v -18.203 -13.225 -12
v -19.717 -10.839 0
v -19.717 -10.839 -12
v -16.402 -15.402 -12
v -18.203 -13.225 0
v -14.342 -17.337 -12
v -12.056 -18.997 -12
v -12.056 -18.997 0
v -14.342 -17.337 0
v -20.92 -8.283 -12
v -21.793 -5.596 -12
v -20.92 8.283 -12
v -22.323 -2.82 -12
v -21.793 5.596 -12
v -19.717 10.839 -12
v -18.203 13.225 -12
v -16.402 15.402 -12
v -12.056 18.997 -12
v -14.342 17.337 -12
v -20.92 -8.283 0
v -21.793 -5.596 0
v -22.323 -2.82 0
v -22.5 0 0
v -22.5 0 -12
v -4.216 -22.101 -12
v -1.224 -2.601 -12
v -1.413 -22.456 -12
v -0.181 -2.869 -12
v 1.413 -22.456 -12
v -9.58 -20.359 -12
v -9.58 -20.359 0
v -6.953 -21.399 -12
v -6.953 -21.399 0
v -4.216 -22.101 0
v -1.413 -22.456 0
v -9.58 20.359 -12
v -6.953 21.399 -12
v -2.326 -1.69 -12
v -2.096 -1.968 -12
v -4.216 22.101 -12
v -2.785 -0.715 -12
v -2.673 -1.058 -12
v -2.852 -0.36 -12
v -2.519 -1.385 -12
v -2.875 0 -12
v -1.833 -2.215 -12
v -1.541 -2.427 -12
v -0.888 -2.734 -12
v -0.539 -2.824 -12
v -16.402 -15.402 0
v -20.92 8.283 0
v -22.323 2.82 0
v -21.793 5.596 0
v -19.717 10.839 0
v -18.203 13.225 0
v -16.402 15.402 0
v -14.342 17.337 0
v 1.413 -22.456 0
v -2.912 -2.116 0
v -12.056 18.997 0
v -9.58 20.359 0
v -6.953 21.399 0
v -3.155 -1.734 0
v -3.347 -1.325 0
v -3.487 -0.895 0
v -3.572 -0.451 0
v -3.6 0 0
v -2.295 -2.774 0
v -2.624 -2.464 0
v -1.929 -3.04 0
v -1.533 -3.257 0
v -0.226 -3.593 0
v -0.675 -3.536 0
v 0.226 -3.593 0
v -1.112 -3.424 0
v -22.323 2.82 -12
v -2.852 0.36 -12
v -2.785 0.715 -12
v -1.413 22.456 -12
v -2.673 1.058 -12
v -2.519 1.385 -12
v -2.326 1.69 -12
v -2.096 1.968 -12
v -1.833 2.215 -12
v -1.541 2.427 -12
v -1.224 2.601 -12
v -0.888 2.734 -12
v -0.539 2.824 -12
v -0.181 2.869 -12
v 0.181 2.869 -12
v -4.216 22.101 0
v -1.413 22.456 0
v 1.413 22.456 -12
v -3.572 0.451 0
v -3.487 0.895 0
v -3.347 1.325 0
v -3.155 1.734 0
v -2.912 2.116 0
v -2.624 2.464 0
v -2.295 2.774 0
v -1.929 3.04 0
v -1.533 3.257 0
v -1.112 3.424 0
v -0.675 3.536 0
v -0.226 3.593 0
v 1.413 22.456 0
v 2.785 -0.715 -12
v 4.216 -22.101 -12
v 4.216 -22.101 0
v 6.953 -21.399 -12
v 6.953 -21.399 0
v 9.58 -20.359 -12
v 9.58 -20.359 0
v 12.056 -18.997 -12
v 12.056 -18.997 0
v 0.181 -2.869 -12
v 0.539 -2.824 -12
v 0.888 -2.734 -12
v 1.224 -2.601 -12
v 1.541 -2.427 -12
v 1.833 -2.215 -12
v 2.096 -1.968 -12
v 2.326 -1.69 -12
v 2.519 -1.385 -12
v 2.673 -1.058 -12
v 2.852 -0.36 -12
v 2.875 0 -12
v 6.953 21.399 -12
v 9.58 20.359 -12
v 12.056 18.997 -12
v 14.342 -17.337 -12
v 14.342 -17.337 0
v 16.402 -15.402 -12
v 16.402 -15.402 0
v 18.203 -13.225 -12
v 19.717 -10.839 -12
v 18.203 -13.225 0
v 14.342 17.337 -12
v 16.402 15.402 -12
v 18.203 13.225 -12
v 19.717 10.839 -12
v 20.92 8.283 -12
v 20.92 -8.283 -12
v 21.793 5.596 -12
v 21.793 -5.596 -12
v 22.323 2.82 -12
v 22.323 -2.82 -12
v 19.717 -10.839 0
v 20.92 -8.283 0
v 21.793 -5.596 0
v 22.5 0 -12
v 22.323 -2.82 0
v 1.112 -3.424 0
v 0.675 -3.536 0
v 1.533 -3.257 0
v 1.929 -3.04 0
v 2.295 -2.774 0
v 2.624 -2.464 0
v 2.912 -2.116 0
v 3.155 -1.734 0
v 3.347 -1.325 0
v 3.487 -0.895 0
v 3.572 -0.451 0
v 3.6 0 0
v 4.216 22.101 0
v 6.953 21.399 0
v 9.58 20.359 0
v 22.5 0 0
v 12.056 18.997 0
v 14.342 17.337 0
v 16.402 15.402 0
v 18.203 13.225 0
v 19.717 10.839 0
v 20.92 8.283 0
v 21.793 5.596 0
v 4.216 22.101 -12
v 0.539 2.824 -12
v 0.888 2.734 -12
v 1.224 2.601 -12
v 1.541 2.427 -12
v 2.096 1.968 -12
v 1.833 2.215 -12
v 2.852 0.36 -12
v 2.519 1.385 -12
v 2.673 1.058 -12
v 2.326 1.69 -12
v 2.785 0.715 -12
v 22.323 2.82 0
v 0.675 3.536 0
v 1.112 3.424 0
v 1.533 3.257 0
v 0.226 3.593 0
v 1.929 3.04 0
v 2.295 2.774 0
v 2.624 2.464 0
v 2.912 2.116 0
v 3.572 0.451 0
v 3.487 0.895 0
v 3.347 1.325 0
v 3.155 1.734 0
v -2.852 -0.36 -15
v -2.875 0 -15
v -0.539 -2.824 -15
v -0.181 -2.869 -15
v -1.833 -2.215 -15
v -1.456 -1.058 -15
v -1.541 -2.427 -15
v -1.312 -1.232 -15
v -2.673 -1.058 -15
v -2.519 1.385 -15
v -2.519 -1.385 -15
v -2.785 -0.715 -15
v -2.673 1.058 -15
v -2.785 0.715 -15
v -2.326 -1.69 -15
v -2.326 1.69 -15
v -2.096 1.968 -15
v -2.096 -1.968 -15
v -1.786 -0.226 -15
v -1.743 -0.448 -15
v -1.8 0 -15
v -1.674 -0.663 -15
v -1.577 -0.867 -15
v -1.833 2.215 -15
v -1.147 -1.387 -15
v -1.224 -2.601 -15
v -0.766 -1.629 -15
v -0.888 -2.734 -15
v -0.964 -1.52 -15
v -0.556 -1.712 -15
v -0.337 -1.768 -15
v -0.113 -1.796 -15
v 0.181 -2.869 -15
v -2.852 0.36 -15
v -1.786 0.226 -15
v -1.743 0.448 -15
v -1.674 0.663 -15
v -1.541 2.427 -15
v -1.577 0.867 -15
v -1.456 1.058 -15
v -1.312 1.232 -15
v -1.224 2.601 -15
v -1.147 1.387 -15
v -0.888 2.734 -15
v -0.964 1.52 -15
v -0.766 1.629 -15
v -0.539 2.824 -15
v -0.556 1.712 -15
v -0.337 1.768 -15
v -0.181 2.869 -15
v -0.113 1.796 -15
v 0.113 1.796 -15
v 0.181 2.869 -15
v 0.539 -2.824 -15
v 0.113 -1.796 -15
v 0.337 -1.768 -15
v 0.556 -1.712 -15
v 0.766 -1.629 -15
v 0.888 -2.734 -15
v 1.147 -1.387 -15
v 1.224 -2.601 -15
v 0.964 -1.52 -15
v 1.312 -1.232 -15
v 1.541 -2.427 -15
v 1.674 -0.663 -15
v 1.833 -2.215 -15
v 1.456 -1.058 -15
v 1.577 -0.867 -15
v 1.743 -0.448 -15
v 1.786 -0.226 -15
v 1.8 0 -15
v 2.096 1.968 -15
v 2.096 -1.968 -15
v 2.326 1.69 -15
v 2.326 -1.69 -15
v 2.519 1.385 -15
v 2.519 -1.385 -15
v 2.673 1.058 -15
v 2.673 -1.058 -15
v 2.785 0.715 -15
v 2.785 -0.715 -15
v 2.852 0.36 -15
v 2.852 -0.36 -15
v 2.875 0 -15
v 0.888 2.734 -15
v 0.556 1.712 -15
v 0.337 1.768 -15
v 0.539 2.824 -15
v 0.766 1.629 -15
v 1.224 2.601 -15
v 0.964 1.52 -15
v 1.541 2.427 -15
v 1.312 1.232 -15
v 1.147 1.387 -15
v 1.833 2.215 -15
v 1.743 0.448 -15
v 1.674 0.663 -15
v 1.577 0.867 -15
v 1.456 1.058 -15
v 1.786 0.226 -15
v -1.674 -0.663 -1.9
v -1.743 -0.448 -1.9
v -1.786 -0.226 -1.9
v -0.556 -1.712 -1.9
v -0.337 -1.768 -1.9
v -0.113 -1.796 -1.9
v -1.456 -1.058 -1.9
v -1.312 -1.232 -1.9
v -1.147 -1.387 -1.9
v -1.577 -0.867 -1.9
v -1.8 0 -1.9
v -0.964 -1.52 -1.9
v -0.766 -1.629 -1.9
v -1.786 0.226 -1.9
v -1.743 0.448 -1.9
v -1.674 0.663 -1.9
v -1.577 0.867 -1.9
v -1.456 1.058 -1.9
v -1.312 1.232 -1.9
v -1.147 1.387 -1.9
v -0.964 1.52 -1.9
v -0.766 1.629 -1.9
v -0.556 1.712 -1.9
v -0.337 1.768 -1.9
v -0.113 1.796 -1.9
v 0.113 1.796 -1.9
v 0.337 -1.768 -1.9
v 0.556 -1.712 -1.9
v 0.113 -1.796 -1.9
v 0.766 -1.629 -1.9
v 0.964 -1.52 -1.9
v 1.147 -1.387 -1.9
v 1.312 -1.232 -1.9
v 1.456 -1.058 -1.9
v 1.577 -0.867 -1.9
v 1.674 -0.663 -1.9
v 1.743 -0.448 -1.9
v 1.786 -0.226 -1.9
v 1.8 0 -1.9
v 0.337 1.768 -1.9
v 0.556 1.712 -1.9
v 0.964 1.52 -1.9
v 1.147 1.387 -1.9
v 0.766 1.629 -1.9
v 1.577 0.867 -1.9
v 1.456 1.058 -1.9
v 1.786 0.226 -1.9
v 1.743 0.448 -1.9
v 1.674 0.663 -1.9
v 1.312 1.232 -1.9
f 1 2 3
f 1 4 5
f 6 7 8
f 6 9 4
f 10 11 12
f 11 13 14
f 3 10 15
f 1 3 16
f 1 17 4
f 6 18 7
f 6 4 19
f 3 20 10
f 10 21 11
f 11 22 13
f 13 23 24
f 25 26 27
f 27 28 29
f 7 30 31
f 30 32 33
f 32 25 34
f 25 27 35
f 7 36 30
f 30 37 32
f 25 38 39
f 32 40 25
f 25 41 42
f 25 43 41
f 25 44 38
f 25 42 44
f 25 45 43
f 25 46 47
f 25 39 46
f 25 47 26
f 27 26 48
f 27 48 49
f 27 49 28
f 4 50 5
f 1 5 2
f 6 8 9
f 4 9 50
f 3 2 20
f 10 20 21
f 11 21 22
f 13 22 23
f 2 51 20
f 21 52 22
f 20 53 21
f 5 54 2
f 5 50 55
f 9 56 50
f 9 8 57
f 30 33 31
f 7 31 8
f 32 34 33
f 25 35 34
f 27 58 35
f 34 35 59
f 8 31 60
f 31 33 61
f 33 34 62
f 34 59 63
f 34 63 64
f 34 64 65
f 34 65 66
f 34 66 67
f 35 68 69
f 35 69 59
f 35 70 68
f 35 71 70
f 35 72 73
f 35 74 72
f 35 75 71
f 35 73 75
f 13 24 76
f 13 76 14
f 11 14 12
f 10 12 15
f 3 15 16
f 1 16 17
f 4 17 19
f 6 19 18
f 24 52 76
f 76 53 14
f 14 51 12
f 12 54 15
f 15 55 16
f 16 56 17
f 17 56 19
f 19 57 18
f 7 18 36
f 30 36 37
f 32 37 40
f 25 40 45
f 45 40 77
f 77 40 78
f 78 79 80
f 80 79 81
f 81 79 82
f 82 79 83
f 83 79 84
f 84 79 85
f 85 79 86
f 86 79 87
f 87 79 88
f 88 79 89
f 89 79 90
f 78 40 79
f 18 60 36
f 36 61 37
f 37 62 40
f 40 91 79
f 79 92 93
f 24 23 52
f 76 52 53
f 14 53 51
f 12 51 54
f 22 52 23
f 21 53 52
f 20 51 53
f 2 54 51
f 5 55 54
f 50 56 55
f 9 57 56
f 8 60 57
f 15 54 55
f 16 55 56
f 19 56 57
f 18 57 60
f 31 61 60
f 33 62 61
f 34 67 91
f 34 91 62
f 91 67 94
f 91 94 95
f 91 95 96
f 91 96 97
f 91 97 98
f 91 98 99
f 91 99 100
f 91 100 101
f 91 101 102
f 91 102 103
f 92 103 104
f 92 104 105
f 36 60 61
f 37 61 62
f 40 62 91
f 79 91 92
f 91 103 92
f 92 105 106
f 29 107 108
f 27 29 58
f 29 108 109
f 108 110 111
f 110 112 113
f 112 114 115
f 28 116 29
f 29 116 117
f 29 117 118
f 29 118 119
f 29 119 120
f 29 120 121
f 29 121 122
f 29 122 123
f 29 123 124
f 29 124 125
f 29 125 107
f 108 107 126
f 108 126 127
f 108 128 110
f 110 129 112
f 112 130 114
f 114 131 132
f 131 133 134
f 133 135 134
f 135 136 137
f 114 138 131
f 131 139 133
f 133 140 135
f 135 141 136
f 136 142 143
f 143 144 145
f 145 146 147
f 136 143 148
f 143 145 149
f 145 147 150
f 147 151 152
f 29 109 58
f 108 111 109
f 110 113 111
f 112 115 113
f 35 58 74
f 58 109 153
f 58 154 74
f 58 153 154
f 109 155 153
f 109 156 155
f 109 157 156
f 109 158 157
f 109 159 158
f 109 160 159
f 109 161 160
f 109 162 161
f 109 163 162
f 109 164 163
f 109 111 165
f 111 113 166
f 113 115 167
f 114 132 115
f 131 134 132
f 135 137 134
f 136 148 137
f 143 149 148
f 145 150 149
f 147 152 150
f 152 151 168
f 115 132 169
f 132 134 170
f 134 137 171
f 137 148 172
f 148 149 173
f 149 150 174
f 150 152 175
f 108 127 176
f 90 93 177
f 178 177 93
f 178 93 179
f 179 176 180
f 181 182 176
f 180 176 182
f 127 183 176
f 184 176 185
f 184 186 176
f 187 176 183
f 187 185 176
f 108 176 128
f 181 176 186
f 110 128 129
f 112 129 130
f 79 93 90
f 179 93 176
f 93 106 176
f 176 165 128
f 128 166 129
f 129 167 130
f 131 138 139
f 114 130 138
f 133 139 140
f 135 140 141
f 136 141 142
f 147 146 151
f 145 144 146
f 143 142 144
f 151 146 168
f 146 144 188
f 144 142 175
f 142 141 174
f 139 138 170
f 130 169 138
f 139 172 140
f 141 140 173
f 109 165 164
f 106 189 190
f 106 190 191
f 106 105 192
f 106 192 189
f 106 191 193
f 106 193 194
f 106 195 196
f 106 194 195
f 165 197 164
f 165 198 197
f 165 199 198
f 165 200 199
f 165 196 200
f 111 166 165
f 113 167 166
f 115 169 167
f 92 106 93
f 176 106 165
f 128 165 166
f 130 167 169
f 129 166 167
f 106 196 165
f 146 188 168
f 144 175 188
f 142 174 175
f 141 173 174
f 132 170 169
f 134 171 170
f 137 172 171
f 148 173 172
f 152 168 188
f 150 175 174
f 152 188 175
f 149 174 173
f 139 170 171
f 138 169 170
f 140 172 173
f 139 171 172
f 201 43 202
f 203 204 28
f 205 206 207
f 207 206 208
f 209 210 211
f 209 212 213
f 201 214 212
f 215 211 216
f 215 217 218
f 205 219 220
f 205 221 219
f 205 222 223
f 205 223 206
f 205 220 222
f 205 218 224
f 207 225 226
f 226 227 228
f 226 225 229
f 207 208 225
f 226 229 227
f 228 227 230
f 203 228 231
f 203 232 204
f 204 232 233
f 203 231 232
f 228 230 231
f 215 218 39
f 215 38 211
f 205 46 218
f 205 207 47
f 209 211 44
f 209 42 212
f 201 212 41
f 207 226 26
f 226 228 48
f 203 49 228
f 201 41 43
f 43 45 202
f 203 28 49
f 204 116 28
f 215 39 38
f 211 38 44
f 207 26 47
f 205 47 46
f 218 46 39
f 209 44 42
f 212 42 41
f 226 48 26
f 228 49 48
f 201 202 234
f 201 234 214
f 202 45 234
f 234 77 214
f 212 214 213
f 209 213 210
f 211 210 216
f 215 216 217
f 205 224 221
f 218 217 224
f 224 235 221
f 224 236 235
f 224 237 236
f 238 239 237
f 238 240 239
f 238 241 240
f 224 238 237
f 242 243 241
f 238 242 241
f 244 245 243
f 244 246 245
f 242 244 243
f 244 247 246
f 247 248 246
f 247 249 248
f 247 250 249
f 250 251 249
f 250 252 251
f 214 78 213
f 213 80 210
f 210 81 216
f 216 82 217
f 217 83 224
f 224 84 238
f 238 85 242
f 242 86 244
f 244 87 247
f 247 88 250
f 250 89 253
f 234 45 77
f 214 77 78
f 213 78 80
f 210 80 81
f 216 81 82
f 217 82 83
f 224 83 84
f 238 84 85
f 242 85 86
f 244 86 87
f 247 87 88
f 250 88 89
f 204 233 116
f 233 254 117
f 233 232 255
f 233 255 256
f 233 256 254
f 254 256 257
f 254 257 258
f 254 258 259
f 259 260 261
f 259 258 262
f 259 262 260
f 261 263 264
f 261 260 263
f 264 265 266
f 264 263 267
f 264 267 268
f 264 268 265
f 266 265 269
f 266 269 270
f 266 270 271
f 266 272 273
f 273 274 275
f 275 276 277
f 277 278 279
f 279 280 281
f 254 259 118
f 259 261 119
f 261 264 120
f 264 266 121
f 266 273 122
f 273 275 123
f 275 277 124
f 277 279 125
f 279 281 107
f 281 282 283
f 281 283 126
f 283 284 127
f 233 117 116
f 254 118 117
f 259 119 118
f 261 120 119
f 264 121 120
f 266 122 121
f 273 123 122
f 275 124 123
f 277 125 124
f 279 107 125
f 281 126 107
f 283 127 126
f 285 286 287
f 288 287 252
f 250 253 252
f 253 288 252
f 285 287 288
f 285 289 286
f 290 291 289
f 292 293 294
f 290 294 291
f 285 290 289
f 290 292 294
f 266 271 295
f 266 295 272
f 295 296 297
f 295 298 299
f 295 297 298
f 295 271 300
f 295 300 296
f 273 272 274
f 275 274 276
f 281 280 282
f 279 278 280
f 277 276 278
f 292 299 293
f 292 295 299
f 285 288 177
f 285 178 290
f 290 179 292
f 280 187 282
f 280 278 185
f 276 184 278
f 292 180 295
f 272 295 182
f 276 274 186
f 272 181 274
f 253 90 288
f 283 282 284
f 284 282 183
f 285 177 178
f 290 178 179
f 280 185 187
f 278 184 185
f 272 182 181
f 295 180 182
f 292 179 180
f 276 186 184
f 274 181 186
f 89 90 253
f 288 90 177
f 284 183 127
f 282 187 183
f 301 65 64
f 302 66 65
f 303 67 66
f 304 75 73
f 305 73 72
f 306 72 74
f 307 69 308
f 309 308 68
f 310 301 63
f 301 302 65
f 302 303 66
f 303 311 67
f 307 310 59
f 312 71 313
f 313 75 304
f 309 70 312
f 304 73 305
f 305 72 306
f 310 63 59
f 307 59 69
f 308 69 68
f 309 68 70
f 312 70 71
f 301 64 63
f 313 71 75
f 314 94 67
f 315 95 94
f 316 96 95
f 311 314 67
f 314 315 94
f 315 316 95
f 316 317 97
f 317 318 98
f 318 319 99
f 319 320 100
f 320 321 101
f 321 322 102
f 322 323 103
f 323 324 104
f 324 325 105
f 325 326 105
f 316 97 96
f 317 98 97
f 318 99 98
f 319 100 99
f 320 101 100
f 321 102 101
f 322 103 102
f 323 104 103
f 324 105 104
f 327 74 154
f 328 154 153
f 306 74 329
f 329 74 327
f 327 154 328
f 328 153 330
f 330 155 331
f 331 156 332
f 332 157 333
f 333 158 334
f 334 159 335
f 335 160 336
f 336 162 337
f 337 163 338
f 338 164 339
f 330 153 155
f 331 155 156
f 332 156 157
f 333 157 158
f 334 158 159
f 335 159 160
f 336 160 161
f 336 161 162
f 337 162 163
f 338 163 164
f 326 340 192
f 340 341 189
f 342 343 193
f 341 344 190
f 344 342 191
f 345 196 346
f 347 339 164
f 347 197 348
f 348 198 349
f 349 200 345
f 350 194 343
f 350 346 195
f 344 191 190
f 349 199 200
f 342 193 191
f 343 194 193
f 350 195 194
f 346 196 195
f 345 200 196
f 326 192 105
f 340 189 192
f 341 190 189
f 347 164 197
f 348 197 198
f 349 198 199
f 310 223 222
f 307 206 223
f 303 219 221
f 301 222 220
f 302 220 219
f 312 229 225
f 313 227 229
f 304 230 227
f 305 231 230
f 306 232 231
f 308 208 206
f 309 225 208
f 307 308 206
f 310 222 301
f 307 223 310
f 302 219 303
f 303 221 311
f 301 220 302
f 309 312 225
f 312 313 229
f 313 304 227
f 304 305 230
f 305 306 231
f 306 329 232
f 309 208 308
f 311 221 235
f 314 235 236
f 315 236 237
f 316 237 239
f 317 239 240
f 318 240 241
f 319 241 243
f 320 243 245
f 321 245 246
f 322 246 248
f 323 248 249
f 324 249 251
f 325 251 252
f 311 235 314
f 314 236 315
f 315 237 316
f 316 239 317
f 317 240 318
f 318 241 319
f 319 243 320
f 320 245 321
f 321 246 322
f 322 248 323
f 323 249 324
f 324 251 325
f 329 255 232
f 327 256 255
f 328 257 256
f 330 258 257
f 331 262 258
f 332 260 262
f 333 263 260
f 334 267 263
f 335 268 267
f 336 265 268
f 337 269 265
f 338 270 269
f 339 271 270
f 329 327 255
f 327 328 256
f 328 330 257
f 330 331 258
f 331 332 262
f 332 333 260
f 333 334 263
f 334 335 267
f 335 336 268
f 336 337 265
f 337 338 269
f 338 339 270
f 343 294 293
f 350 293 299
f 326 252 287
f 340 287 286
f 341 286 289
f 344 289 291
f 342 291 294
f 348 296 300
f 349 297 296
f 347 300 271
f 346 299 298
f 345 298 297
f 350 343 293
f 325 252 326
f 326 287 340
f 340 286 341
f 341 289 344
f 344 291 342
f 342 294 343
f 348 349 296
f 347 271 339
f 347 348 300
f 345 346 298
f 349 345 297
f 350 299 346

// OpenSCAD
$fn = 50;

difference() {
	union() {
		translate(v = [0, 0, -12.0]) {
			cylinder(h = 12, r = 22.5);
		}
		#translate(v = [0, 0, -15.0]) {
			cylinder(h = 15, r = 2.875);
		}
	}
	union() {
		translate(v = [0, 0, 0]) {
			rotate(a = [0, 0, 0]) {
				difference() {
					union() {
						translate(v = [0, 0, -15.0]) {
							cylinder(h = 15, r = 1.5);
						}
						translate(v = [0, 0, -1.9]) {
							cylinder(h = 1.9, r1 = 1.8, r2 = 3.6);
						}
						translate(v = [0, 0, -15.0]) {
							cylinder(h = 15, r = 1.8);
						}
						translate(v = [0, 0, -15.0]) {
							cylinder(h = 15, r = 1.5);
						}
					}
					union();
				}
			}
		}
	}
}
